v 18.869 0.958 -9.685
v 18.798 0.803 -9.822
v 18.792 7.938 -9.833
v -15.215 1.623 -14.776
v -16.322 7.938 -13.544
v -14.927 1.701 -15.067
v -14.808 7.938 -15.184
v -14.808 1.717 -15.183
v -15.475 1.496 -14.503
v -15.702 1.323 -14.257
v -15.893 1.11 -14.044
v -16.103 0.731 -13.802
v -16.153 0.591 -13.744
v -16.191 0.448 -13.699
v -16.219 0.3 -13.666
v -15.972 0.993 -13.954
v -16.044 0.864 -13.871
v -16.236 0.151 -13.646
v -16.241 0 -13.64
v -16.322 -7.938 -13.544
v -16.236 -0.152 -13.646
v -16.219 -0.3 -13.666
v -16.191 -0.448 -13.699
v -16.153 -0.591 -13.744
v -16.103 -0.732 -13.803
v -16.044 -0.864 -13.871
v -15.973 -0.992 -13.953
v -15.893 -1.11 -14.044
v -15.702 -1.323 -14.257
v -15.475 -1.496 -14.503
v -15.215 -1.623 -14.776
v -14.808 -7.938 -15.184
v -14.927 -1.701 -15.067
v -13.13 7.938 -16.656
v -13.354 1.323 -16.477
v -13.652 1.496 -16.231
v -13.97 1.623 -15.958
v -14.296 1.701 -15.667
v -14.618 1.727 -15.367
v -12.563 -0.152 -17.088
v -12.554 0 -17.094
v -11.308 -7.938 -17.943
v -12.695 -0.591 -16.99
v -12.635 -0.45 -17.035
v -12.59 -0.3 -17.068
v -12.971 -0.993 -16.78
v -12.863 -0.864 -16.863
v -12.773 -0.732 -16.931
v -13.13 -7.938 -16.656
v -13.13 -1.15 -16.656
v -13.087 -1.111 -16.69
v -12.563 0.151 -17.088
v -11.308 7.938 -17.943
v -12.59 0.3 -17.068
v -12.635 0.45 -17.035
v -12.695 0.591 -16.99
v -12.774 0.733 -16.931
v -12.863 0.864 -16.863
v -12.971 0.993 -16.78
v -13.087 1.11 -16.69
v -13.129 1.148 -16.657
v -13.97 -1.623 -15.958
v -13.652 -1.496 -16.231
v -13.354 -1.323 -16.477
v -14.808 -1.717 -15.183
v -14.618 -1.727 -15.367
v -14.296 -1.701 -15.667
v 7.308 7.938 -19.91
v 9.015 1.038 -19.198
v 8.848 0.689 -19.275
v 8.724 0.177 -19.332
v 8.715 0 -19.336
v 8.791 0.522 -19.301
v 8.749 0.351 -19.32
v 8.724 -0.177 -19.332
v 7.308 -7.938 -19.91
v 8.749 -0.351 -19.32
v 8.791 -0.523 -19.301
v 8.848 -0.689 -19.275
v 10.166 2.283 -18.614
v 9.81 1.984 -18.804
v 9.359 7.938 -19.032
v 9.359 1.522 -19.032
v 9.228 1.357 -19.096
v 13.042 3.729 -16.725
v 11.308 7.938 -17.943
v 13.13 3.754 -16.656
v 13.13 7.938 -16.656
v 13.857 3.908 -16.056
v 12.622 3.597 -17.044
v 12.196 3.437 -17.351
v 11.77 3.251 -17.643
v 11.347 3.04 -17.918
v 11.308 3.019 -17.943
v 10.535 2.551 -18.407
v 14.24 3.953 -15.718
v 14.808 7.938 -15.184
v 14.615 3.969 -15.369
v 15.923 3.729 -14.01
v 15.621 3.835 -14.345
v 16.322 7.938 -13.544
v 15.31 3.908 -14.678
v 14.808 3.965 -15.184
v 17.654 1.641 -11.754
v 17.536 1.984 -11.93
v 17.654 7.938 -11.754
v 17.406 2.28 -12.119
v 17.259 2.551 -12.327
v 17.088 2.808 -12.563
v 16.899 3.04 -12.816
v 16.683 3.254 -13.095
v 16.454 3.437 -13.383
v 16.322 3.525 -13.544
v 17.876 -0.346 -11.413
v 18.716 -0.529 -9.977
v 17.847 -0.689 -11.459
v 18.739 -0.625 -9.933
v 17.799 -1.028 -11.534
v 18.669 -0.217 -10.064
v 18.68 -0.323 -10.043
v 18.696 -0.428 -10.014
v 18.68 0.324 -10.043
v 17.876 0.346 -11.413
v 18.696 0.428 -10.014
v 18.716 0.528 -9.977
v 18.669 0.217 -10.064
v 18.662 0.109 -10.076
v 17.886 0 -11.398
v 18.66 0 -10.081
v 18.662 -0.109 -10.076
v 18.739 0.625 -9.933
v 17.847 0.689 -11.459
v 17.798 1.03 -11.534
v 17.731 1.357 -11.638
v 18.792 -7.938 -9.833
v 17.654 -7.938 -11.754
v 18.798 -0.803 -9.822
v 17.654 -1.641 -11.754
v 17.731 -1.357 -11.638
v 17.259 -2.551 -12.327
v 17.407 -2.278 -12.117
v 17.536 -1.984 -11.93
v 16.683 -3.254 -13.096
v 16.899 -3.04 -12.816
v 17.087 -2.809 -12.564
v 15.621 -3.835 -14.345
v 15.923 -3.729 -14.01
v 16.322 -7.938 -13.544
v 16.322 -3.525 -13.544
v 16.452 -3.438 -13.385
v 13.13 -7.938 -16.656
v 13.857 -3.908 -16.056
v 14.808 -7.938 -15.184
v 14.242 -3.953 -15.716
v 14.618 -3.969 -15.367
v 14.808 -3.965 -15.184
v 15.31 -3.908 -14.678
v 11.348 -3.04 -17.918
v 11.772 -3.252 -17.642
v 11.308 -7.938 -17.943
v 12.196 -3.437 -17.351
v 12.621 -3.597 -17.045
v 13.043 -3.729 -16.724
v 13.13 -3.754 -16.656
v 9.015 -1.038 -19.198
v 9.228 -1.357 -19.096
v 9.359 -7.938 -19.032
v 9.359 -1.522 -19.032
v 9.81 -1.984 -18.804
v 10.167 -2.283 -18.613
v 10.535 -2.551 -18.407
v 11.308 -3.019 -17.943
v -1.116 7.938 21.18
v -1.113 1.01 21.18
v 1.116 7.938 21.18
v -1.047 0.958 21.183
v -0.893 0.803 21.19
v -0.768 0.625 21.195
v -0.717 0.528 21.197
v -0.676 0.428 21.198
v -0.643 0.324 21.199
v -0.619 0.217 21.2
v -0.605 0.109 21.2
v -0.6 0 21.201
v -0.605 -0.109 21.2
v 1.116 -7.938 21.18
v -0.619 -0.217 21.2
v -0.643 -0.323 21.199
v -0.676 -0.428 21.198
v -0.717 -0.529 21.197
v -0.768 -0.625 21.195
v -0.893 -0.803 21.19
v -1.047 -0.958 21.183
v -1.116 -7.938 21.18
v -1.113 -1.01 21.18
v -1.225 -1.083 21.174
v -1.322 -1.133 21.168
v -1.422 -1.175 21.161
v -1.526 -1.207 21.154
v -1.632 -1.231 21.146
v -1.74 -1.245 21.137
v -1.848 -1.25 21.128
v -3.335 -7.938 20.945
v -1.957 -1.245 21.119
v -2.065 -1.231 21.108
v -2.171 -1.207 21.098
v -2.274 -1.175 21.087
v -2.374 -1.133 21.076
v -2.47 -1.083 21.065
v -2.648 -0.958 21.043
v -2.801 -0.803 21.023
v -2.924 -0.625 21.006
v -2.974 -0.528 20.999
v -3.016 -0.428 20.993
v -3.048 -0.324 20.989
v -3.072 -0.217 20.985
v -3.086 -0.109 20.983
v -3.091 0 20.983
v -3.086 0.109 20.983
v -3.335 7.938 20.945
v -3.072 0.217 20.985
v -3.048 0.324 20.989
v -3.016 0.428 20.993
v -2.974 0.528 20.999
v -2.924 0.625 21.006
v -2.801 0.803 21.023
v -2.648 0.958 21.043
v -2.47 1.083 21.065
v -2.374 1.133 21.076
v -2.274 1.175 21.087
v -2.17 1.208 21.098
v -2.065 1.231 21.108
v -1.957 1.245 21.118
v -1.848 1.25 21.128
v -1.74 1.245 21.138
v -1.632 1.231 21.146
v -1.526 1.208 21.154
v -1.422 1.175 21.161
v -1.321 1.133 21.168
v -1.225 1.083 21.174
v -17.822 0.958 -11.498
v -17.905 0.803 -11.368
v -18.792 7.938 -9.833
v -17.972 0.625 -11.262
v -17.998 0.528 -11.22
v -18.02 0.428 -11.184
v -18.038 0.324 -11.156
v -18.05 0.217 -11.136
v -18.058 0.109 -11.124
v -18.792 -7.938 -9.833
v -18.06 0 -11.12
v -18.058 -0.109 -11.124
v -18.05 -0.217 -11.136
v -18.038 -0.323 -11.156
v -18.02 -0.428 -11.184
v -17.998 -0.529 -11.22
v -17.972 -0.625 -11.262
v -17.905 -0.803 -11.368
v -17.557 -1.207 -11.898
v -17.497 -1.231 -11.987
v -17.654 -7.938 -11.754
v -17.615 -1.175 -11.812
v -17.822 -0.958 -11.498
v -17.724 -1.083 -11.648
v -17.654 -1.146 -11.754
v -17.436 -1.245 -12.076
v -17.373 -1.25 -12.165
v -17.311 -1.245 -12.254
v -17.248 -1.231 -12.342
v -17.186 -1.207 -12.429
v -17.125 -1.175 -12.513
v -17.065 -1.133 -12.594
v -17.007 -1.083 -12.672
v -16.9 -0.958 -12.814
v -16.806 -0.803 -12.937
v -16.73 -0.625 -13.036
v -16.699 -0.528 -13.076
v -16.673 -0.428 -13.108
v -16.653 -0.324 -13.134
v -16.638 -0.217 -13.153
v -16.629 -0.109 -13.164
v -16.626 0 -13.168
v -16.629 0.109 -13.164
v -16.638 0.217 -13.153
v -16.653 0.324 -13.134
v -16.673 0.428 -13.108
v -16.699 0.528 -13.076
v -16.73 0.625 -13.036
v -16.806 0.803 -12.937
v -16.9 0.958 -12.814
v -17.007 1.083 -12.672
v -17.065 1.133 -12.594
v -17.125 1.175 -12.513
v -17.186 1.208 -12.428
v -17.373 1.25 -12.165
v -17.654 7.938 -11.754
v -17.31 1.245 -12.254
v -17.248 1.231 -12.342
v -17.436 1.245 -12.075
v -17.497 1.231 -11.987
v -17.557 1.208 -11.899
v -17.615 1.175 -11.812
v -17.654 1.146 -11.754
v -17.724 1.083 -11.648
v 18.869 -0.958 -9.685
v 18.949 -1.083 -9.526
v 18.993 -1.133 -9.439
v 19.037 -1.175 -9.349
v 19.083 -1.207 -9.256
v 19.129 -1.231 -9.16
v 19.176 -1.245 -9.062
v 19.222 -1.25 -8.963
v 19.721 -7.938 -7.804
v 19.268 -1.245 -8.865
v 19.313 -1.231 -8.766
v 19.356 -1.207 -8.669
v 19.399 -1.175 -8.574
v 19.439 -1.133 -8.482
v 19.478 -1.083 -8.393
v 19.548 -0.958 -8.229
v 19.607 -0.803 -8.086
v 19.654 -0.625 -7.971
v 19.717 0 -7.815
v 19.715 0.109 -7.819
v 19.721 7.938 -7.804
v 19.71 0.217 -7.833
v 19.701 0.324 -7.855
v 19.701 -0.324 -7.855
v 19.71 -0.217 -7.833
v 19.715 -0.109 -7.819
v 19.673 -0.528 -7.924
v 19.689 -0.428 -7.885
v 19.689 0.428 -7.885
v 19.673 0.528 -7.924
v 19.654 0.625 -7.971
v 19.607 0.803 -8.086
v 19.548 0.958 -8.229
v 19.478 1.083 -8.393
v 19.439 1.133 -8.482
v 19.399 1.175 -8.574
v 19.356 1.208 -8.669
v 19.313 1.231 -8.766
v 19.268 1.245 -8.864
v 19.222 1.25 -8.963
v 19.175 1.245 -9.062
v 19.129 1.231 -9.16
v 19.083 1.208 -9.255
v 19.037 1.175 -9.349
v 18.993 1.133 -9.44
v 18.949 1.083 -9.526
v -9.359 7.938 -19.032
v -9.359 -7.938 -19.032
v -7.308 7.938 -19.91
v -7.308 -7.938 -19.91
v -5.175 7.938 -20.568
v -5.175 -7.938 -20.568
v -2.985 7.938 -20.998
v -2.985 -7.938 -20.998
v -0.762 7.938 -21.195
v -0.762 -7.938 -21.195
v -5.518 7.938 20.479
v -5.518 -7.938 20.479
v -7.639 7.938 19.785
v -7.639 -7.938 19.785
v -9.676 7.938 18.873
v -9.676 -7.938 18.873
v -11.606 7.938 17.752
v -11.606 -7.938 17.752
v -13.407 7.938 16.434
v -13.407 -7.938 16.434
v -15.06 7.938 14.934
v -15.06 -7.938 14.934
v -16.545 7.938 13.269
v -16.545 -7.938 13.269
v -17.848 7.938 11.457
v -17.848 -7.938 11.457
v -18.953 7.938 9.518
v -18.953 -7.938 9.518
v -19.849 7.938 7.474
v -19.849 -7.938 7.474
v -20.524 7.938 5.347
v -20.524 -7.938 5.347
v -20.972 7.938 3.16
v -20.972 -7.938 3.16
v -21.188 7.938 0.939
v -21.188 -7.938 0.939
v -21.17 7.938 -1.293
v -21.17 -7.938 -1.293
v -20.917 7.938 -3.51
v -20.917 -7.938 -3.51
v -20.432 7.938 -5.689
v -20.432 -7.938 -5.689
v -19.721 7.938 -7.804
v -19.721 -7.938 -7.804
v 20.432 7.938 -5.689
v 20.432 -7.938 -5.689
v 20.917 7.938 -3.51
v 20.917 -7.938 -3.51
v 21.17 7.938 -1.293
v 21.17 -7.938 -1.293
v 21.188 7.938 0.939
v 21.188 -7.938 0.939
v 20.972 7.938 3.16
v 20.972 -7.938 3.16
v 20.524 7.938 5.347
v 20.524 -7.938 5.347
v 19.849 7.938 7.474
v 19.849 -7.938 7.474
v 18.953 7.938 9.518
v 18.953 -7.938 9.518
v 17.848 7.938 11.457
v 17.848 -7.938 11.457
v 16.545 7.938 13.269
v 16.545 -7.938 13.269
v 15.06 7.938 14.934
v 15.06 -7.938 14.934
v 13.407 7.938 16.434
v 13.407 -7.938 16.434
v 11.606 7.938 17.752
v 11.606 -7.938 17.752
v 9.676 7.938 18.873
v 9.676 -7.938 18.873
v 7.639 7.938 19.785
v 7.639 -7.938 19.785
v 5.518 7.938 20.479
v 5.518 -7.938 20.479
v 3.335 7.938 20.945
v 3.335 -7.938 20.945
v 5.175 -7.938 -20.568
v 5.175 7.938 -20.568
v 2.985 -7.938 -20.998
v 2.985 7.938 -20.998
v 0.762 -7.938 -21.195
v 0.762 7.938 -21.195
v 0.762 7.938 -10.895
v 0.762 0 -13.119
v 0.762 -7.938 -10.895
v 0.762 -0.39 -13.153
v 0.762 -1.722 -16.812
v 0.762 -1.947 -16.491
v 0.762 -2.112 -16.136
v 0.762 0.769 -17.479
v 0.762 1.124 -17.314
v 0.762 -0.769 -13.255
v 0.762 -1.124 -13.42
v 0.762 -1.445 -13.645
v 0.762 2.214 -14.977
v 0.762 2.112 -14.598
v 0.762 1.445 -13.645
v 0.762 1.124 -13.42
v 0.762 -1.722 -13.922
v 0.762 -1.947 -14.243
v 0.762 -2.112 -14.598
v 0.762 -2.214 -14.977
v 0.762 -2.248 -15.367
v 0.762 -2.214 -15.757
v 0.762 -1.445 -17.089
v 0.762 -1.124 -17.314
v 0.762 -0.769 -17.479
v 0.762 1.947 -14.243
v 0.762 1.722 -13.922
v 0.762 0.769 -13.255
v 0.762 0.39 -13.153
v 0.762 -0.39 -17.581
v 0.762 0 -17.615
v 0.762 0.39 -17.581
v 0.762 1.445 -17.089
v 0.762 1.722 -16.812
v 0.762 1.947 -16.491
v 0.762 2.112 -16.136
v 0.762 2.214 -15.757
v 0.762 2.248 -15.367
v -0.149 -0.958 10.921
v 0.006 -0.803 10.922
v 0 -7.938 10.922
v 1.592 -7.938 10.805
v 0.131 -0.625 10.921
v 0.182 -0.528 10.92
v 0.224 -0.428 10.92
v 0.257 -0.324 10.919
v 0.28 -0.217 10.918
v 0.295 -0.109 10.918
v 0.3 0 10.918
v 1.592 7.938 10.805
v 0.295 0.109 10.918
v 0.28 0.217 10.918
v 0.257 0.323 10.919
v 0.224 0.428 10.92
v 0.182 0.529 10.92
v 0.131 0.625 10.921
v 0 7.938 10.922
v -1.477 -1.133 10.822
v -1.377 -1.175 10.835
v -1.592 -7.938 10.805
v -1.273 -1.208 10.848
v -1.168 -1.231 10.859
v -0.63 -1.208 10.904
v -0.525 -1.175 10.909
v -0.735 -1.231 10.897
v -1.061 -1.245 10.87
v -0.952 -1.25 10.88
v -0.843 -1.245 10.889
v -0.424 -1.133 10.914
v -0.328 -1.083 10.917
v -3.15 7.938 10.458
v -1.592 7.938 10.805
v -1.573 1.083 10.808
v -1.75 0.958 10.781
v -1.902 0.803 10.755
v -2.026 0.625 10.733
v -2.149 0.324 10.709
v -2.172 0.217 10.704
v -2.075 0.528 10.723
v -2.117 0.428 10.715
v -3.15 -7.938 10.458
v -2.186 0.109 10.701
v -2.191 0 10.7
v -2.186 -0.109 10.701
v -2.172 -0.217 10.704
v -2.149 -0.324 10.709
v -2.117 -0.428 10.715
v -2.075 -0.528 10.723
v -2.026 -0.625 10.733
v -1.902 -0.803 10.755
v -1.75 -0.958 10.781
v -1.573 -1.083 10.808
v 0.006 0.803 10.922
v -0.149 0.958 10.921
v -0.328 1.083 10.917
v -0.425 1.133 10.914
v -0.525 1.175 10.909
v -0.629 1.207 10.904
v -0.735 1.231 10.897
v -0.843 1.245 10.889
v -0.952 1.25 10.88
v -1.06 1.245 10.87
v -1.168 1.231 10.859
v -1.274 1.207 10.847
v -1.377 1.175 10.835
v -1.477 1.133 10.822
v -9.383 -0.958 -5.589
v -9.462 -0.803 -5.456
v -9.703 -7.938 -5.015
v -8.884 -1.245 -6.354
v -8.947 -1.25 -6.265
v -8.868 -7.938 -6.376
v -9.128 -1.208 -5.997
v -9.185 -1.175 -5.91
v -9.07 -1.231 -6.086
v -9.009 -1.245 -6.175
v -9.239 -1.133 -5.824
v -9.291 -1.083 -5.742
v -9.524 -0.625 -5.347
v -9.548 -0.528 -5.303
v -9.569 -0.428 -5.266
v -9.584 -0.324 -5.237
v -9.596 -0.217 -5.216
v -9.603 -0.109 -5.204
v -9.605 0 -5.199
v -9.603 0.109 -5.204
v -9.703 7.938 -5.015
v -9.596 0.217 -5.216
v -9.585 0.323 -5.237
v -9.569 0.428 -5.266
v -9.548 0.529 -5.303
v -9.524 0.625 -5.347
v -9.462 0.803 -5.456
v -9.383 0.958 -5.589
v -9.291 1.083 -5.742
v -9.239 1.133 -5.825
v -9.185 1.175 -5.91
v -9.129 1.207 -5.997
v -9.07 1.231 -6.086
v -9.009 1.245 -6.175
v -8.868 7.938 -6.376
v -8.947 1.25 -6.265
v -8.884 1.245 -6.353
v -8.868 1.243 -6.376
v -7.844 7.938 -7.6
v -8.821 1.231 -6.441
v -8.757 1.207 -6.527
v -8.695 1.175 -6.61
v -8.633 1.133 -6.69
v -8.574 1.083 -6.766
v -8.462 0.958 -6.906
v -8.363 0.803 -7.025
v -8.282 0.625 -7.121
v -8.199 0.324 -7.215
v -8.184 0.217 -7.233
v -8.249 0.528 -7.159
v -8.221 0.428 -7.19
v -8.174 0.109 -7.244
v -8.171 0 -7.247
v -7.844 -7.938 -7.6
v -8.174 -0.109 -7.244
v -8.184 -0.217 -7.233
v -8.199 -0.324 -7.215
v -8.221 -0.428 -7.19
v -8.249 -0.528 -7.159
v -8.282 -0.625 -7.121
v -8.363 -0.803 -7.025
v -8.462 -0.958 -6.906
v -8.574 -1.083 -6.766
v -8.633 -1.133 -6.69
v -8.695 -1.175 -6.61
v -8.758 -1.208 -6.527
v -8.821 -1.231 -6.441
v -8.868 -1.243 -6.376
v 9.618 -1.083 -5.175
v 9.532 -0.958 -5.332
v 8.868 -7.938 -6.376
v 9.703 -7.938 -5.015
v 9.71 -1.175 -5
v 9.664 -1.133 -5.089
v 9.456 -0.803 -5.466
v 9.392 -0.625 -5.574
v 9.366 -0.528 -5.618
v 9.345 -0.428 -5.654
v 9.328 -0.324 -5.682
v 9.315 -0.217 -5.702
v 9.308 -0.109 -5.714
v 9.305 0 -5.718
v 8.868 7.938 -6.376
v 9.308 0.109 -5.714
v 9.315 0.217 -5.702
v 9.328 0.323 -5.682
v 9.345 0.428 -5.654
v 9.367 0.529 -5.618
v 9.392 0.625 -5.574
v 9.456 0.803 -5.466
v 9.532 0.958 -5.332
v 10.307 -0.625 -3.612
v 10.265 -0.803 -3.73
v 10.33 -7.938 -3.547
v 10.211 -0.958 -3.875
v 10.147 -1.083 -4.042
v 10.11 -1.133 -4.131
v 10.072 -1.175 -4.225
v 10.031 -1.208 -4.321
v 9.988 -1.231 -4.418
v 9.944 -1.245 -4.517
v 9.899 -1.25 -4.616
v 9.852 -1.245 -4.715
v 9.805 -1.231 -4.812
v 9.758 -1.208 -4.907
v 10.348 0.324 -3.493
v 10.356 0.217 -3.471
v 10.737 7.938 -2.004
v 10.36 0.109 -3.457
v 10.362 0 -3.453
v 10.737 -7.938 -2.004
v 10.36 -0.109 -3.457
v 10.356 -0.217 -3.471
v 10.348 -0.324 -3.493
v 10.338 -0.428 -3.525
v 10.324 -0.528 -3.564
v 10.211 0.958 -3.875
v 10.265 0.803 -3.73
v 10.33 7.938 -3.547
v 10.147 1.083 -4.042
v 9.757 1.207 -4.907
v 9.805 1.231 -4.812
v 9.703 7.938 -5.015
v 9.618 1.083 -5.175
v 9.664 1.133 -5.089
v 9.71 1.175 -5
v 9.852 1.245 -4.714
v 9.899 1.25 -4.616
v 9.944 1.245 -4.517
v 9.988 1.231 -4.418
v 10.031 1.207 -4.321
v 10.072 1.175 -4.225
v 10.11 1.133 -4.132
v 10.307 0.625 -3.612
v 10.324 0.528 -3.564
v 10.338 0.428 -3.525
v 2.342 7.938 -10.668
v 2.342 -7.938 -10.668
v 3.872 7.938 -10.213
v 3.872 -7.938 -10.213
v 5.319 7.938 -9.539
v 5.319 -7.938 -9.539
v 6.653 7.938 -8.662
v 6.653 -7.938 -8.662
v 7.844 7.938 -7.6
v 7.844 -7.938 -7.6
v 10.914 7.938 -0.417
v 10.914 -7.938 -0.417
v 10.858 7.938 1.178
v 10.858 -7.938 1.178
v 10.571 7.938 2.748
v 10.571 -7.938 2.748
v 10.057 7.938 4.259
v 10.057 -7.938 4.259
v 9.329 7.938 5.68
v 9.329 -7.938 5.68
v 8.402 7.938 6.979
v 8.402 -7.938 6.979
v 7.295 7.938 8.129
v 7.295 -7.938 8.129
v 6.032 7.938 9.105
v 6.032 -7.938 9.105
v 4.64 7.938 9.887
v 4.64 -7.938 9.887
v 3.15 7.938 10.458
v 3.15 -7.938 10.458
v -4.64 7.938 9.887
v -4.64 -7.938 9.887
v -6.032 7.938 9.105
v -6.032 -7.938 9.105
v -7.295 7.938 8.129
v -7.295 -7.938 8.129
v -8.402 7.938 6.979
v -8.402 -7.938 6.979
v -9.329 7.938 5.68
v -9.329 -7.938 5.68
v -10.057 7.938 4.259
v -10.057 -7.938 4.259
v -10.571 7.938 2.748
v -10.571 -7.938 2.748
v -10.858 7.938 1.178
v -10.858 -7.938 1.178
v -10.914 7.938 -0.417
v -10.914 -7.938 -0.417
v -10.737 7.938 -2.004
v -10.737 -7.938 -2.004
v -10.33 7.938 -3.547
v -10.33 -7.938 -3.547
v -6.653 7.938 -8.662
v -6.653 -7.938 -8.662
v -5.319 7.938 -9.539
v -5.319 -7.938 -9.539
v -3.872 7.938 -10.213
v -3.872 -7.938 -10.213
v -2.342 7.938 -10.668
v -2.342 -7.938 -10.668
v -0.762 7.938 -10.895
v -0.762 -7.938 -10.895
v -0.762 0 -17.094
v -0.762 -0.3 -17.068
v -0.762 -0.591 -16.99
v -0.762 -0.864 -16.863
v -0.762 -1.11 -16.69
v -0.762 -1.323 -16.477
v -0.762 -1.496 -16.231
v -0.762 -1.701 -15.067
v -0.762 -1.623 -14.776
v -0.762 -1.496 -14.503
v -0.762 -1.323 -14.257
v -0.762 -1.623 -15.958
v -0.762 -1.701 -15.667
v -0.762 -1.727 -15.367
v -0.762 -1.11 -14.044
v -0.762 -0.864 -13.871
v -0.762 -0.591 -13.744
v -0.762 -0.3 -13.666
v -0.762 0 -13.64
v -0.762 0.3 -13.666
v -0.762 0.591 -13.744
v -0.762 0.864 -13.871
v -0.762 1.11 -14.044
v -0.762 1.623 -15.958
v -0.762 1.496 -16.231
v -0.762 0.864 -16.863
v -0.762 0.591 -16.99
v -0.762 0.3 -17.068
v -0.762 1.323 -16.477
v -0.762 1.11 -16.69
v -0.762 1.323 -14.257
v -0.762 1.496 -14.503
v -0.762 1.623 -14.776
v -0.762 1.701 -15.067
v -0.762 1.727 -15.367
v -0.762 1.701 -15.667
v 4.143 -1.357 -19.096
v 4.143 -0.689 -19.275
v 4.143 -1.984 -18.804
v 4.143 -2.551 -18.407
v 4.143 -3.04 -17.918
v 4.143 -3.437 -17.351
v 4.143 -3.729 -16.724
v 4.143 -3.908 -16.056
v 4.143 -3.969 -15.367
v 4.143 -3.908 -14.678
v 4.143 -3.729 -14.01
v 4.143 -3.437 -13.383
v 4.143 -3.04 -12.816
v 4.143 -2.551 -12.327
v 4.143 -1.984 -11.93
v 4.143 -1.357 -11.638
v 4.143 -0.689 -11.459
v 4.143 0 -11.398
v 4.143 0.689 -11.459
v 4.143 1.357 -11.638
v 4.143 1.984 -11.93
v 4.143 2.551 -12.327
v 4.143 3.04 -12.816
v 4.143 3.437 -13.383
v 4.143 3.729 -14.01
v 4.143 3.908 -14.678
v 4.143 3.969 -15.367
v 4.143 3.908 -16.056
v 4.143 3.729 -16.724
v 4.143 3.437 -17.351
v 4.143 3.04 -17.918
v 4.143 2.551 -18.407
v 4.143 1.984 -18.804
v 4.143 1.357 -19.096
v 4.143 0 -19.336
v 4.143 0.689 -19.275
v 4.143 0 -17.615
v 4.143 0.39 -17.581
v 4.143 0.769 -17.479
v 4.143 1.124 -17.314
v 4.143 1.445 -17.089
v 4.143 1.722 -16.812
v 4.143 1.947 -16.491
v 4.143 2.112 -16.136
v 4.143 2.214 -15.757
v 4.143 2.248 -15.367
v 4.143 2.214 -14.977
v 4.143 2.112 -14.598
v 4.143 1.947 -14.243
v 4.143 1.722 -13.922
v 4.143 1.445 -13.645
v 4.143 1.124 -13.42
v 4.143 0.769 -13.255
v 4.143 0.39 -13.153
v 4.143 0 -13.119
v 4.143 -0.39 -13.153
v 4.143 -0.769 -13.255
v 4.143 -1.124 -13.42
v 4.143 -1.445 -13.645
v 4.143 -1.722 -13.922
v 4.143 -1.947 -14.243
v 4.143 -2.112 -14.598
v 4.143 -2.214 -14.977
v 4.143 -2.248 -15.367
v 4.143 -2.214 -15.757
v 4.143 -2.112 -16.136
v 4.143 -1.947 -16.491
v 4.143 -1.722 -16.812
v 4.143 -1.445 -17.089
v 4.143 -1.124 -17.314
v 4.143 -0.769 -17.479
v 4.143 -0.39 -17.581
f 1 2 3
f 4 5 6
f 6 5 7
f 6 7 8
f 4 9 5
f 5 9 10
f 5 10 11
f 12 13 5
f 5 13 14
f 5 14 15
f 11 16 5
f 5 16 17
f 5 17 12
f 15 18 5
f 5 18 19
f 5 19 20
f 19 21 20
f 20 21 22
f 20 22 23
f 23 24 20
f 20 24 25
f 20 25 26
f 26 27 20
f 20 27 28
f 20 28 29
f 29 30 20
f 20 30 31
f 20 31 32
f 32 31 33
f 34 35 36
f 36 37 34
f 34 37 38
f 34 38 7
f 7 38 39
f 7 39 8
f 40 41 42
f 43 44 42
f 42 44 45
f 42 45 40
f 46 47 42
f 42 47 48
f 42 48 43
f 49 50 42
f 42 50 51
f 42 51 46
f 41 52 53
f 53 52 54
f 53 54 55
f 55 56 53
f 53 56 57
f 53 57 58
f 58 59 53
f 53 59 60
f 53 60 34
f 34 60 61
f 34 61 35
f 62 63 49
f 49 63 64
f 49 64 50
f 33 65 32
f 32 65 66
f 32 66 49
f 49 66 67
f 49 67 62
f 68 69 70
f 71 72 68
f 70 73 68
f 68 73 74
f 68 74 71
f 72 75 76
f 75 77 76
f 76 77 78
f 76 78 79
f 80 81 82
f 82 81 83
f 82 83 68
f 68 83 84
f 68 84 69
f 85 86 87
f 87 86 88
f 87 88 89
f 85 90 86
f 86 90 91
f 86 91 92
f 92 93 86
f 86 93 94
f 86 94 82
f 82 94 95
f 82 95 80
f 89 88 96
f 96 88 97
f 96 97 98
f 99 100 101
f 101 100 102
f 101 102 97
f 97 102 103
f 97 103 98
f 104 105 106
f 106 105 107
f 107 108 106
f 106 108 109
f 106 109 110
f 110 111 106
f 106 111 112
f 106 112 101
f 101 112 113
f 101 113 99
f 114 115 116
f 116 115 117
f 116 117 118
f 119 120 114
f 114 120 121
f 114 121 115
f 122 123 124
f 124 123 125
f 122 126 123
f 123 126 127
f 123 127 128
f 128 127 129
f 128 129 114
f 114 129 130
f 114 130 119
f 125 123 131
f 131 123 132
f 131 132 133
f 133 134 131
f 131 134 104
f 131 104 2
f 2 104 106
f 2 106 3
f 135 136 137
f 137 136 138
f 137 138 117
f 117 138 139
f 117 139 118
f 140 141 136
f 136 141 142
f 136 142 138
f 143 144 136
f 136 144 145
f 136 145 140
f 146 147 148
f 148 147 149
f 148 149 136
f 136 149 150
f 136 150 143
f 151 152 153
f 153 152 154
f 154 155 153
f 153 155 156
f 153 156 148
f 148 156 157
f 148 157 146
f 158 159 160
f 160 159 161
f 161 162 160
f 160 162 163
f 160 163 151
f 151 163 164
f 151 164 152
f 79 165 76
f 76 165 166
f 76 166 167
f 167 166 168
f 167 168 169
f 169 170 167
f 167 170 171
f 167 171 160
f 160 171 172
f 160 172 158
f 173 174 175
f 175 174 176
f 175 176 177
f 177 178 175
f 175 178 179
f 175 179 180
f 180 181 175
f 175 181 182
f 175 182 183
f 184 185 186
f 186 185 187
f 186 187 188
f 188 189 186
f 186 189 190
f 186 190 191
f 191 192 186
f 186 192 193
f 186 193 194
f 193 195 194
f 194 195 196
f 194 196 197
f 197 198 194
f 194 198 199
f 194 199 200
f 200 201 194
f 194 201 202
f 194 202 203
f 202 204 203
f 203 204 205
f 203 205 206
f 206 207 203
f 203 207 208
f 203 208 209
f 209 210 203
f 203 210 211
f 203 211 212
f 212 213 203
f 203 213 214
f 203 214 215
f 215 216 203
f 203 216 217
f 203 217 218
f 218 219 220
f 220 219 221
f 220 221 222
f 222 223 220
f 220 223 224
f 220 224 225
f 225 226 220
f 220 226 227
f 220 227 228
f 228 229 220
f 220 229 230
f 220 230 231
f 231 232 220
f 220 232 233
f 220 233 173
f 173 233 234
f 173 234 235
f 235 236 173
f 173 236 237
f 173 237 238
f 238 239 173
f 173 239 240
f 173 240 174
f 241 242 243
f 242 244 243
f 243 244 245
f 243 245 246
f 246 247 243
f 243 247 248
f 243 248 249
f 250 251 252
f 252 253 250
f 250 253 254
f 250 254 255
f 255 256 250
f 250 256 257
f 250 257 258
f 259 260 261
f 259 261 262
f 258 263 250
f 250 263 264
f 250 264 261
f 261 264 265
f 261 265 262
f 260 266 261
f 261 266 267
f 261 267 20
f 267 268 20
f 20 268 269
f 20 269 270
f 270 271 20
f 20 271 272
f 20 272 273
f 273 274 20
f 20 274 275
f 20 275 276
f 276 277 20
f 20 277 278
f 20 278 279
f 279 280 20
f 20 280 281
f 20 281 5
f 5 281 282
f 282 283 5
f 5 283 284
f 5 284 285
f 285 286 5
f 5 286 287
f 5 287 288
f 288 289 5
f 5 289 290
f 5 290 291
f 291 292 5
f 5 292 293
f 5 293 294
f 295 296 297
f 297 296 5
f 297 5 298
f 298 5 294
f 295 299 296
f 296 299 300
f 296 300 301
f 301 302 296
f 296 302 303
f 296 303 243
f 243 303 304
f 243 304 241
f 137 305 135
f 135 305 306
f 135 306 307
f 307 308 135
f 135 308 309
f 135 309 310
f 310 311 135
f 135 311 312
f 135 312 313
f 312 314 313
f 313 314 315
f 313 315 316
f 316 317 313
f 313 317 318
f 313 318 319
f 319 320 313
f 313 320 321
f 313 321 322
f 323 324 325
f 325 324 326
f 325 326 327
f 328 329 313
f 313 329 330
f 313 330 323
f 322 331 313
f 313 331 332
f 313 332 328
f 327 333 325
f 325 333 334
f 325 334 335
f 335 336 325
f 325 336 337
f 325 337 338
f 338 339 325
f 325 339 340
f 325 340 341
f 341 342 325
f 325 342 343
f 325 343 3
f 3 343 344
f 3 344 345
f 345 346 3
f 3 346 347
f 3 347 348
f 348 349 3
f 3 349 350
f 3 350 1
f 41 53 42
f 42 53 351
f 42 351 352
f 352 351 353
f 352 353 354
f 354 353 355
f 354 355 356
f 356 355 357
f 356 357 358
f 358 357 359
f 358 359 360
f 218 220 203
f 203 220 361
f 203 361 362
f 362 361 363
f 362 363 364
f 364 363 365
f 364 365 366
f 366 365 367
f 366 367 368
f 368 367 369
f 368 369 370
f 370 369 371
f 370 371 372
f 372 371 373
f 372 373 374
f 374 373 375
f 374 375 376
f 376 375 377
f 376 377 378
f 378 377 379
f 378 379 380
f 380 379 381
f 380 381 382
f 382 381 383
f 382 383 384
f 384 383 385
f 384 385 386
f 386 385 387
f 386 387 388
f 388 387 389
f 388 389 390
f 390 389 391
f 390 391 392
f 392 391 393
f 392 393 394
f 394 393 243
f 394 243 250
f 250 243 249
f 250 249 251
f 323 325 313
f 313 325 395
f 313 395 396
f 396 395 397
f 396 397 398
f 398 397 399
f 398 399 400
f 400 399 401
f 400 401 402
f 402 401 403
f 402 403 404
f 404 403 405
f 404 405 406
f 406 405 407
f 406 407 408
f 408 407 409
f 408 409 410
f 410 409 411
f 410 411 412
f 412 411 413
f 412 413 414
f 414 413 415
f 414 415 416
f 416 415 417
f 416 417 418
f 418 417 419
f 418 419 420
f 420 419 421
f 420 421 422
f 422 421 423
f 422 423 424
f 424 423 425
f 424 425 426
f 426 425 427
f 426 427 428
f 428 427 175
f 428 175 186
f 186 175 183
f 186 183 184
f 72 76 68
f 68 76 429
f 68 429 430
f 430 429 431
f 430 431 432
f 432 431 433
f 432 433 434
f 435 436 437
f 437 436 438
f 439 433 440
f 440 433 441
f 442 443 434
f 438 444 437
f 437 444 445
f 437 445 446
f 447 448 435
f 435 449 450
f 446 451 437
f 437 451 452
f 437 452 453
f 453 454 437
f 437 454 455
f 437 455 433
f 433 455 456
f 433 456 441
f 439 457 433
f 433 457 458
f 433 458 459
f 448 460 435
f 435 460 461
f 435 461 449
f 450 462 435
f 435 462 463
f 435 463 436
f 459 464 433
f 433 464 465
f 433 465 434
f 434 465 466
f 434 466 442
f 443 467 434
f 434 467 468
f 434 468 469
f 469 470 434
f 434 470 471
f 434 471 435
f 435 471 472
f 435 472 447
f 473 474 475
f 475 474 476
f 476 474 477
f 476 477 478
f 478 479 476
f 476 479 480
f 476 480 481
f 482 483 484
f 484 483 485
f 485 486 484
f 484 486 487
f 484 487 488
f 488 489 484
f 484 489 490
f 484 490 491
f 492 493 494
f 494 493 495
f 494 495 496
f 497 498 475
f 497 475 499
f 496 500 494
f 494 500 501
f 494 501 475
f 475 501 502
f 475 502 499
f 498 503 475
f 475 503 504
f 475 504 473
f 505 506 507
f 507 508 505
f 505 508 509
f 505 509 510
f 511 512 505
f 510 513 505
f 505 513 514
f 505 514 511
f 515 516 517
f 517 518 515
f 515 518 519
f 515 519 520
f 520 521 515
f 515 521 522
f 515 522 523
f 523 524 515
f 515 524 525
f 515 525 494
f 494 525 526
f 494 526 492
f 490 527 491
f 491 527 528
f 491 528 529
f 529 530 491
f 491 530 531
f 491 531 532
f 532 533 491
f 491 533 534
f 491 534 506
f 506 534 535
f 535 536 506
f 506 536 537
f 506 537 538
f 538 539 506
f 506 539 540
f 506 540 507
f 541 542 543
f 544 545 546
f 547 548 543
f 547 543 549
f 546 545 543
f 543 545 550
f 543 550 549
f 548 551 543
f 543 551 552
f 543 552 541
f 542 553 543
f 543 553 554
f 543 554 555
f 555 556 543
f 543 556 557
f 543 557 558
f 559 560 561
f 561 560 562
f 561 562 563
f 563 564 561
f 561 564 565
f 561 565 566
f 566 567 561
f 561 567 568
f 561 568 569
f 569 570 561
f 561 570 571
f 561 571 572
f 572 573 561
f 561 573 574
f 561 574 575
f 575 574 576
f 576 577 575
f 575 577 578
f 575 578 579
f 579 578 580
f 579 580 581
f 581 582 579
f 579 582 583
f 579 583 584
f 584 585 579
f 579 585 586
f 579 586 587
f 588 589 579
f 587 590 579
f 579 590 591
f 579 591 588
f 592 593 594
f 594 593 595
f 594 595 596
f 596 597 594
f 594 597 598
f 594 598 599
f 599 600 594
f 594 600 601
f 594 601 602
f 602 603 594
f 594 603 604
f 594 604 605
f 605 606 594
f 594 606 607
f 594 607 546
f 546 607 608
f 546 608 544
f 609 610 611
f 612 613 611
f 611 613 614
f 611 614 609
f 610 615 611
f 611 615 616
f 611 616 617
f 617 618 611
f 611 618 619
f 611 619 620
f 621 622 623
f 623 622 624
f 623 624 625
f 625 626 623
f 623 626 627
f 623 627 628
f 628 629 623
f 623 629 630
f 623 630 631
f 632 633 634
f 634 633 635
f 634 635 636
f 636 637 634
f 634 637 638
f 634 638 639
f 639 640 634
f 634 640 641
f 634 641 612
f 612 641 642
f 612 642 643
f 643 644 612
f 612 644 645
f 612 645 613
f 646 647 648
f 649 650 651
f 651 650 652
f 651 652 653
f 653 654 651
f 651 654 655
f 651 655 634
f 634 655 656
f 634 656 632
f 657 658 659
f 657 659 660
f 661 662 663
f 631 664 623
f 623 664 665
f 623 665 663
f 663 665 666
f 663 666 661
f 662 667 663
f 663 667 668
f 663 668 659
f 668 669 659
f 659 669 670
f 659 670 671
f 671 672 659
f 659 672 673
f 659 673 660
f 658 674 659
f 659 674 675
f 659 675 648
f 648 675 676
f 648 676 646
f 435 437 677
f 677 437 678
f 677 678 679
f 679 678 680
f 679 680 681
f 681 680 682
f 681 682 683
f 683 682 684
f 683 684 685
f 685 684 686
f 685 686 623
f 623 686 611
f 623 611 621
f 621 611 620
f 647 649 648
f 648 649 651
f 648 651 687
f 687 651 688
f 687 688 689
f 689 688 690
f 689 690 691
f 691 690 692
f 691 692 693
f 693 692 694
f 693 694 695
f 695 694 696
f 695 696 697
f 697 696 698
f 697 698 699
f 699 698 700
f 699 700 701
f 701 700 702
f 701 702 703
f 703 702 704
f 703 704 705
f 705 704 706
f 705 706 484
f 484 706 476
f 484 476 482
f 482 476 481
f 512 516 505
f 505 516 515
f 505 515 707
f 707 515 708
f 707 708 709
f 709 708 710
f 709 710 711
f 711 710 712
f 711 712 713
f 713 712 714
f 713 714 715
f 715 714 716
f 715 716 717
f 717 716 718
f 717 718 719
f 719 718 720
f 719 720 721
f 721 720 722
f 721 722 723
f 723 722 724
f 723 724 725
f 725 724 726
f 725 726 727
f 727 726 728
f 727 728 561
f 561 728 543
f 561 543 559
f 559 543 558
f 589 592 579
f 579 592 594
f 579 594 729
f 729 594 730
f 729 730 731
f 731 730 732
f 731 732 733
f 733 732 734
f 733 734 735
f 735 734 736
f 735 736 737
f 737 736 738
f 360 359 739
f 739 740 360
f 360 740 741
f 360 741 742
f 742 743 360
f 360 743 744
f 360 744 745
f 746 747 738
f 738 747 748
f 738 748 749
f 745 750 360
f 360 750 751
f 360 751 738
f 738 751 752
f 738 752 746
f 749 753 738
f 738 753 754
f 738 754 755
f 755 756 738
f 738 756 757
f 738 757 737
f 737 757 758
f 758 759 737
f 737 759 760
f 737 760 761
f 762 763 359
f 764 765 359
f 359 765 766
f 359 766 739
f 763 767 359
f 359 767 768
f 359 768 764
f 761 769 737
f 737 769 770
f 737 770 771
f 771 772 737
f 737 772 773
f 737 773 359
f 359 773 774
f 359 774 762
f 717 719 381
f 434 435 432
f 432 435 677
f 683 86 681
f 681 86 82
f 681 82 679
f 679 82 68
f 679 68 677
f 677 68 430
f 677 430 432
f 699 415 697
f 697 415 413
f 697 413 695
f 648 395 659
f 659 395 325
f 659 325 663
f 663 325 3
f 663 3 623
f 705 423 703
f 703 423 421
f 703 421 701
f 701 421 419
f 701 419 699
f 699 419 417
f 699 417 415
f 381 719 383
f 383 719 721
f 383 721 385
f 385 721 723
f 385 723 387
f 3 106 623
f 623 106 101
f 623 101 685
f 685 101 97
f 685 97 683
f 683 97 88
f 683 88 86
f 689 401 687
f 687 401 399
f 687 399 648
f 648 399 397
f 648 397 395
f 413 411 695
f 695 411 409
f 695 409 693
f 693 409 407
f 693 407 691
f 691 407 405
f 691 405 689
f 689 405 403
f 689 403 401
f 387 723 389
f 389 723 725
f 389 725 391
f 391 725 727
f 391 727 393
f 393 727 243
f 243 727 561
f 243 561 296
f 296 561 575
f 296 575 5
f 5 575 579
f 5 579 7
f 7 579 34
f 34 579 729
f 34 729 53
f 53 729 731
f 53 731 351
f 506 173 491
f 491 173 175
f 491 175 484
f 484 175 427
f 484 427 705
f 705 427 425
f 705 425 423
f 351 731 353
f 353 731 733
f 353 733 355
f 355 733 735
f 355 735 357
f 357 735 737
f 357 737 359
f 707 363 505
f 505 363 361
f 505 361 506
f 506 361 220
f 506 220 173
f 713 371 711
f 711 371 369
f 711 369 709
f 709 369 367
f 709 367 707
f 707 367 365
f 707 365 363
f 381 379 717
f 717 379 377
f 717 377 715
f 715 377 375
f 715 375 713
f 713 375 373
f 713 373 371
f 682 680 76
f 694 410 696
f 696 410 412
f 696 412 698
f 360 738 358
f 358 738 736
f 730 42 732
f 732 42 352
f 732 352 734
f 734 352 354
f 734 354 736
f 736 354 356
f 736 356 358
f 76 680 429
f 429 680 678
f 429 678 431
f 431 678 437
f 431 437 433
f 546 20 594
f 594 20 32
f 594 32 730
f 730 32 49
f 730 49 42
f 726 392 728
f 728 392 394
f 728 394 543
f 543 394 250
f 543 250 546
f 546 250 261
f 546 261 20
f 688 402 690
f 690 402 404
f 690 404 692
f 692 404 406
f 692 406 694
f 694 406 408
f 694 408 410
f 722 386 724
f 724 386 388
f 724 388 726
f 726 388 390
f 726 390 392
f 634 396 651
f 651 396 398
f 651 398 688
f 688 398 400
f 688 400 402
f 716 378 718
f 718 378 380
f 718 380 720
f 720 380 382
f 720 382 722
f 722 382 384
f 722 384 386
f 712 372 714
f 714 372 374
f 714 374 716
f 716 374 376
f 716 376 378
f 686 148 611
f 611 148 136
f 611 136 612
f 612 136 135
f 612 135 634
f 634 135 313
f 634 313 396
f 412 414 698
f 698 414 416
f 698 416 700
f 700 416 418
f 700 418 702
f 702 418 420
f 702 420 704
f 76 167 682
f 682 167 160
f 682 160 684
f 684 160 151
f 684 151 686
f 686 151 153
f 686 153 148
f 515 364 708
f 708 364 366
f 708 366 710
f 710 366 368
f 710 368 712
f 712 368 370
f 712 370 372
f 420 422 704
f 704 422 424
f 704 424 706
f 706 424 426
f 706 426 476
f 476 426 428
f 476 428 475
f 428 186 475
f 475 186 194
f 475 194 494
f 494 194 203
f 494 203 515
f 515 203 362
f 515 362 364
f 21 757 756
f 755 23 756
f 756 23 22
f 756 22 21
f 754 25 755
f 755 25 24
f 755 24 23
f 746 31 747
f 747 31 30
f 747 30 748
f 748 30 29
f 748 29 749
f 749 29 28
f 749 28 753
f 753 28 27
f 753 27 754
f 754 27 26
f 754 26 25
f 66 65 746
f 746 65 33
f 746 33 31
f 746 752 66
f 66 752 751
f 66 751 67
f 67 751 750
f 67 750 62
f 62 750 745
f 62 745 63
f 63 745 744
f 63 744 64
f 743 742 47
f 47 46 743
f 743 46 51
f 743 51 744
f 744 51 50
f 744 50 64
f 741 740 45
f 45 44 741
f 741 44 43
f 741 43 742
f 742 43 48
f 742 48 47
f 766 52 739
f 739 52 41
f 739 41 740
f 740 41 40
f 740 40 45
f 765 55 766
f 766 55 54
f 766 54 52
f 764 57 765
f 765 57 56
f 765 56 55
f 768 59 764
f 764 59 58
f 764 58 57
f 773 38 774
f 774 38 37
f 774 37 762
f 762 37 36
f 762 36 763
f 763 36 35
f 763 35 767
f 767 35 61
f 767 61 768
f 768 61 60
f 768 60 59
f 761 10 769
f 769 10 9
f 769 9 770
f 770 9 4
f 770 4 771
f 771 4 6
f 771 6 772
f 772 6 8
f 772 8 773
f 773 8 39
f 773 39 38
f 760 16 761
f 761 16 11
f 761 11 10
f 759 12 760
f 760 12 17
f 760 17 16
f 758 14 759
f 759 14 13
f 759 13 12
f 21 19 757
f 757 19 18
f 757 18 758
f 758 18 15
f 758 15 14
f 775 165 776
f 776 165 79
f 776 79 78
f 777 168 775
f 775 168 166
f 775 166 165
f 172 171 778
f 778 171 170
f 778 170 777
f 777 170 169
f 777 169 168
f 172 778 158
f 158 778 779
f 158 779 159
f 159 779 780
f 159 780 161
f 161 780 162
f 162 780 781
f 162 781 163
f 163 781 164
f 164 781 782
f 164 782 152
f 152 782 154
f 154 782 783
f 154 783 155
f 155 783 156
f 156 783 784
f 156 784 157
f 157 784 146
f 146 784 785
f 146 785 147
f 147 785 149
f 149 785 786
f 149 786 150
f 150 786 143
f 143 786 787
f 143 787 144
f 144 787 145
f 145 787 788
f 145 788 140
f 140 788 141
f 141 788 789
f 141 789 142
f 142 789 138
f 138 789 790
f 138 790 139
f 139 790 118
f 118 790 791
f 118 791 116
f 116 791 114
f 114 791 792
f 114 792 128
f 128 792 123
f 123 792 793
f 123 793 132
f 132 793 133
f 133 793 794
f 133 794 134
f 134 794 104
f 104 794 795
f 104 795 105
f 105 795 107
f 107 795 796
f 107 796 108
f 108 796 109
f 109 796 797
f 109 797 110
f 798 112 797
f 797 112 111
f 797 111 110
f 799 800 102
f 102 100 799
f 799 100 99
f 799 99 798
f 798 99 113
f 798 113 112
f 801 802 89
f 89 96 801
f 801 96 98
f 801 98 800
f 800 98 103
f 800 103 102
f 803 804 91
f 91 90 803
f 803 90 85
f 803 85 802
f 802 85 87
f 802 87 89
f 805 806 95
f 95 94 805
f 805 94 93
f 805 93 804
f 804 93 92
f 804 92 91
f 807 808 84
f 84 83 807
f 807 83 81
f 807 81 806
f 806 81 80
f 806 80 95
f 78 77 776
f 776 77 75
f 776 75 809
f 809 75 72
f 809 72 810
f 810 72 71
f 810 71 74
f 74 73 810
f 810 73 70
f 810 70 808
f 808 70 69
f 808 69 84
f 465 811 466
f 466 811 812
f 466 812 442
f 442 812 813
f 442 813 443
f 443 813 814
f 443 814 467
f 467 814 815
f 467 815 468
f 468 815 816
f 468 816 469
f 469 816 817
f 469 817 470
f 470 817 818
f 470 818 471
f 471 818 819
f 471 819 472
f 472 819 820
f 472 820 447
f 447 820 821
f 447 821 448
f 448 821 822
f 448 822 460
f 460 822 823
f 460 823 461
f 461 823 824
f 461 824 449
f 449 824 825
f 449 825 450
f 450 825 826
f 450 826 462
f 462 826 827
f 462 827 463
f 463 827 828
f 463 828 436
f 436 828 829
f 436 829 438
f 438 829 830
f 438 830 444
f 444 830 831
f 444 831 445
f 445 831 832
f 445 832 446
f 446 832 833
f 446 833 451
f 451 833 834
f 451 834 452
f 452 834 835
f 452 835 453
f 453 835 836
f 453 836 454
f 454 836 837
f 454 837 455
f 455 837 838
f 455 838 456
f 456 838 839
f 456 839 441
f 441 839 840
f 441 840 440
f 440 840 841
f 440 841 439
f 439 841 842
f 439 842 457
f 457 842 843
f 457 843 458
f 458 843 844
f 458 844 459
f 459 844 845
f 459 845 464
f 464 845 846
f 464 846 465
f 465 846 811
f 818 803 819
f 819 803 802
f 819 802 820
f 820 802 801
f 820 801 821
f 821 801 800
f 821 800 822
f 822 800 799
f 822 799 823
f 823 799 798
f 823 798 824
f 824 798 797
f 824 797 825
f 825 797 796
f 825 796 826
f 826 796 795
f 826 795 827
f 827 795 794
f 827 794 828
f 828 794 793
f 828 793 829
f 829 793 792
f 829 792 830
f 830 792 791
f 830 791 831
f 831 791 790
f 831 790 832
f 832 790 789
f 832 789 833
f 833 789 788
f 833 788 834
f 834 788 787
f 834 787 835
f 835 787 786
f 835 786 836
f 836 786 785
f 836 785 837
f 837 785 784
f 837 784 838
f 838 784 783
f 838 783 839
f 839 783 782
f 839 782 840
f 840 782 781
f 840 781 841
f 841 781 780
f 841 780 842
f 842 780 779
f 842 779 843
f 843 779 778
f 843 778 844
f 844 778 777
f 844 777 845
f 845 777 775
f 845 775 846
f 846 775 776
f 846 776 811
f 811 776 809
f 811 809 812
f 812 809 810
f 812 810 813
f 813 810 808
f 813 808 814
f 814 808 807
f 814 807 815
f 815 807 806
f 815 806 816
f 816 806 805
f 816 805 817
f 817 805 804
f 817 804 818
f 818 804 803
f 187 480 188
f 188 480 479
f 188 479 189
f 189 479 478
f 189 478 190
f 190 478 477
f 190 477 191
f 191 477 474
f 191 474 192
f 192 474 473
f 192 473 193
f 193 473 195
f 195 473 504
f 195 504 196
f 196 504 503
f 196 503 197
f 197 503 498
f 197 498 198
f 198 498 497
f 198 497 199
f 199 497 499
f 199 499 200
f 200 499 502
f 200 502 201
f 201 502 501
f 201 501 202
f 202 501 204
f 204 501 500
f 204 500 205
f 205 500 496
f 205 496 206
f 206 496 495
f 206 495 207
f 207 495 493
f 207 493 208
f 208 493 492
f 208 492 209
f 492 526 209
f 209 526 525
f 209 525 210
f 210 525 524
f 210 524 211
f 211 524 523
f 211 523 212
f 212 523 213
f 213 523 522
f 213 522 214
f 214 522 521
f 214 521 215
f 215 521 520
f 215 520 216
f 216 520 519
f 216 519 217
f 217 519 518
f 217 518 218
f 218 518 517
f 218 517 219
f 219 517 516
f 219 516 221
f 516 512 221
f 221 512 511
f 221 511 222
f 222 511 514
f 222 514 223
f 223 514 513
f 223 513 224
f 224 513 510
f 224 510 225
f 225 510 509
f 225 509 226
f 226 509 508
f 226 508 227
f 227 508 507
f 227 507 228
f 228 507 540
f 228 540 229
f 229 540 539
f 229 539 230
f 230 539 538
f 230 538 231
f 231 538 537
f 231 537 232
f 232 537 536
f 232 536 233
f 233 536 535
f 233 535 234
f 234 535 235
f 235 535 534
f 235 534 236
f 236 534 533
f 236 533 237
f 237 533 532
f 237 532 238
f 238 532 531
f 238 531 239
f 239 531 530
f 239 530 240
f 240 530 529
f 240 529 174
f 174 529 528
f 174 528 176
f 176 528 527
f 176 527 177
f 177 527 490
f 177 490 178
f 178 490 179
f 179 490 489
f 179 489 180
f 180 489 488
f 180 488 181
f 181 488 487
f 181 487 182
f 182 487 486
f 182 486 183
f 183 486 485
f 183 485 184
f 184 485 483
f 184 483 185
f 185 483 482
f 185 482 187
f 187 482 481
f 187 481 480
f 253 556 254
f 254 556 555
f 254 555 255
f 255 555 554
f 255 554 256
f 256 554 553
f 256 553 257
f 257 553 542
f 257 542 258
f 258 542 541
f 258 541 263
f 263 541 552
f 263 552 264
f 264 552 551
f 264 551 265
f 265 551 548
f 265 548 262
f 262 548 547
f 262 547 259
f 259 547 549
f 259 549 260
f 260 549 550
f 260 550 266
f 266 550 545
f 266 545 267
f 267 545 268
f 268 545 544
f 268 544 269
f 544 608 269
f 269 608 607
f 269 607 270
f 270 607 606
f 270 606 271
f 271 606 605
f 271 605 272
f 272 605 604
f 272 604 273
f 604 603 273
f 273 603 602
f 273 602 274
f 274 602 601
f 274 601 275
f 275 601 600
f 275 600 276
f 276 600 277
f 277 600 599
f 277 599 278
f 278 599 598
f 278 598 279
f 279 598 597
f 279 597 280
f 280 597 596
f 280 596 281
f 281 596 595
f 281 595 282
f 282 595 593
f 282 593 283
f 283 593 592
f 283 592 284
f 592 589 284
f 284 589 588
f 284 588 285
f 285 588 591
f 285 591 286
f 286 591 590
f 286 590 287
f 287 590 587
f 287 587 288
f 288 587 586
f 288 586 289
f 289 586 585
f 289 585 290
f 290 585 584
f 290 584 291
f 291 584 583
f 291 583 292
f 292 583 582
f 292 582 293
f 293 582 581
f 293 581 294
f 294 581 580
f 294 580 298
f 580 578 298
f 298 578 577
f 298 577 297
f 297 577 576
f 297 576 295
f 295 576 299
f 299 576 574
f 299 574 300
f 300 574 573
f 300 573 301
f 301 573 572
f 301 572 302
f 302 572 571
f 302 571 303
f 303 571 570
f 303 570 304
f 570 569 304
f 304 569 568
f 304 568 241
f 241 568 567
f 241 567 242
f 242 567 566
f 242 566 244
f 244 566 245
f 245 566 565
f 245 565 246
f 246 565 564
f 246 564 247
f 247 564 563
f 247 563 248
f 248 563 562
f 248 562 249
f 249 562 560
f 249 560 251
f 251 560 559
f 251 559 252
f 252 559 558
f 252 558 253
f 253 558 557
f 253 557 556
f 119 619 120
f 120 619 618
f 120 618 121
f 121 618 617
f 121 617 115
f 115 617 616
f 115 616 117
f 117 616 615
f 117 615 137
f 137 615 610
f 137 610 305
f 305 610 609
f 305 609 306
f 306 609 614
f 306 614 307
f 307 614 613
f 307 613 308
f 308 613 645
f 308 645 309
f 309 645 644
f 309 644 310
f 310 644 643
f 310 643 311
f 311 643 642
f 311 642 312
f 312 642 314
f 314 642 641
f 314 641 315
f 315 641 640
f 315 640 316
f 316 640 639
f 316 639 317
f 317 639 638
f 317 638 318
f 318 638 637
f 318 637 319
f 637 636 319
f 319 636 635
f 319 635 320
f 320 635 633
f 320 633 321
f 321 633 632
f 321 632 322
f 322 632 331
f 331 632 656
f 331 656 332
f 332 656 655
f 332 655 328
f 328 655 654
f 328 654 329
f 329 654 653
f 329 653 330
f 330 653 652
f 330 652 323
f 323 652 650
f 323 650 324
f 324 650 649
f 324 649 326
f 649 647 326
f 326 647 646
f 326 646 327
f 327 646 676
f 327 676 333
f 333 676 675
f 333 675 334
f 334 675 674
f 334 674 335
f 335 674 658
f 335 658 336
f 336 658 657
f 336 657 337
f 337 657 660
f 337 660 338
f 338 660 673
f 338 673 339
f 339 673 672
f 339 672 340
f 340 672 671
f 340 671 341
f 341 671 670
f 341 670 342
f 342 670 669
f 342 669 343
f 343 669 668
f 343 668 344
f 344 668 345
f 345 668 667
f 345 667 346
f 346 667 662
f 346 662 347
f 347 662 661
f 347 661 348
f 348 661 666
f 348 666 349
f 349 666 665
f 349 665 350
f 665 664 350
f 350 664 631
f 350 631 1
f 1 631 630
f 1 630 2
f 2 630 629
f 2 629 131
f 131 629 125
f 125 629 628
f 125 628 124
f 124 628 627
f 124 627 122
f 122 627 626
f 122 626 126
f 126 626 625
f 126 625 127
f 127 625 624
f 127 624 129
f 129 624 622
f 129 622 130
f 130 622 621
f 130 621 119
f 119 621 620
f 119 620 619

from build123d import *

# Parameters (mm, degrees)
BOSS_EXTRUDE1_DEPTH        = 7.9375
M3X0_5_TAPPED_HOLE1_REACH  = 50.846
M3X0_5_TAPPED_HOLE1_BORE_R = 1.25
CIRPATTERN1_COUNT          = 3


with BuildPart() as part:
    # Sketch1 → Boss-Extrude1 (new, symmetric)
    with BuildSketch(Plane(origin=(0, 0, 0), x_dir=(1, 0, 0), z_dir=(0, 1, 0))):
        with BuildLine():
            Line((-0.762, 21.195306957), (-0.762, 10.895386179))
            ThreePointArc((-0.762, 10.895386179), (0, -10.922), (0.762, 10.895386179))
            Line((0.762, 10.895386179), (0.762, 21.195306957))
            ThreePointArc((0.762, 21.195306957), (0, -21.209), (-0.762, 21.195306957))
        make_face()
    extrude(amount=BOSS_EXTRUDE1_DEPTH, both=True)

    # Sketch2 → Cut-Revolve1 (revolve, cut)
    with BuildSketch(Plane(origin=(0, 0, 0), x_dir=(1, 0, 0), z_dir=(0, 1, 0)), mode=Mode.PRIVATE) as cut_revolve1_sk:
        Polygon((-16.24122954, 13.6398), (0.762, 13.6398), (0.762, 13.1191), (4.142955705, 13.1191), (4.142955705, 11.39825), (17.885792628, 11.39825), (17.885792628, 15.367), (-16.24122954, 15.367), align=None)
    revolve(cut_revolve1_sk.sketch.rotate(Axis((-16.24122954, 0, -15.367), (-1, 0, 0)), 180), axis=Axis((-16.24122954, 0, -15.367), (-1, 0, 0)), mode=Mode.SUBTRACT)

    # M3x0.5 Tapped Hole1 bore (on position points) → M3x0.5 Tapped Hole1 (cut, up to next)
    with BuildSketch(Plane(origin=(-1.848486148, 0, 21.128293352), x_dir=(0.996194698092, 0, 0.087155742748), z_dir=(-0.087155742748, 0, 0.996194698092)), mode=Mode.PRIVATE) as m3x0_5_tapped_hole1_sk1:
        Circle(M3X0_5_TAPPED_HOLE1_BORE_R)
    m3x0_5_tapped_hole1_tool1 = extrude(m3x0_5_tapped_hole1_sk1.sketch, amount=-M3X0_5_TAPPED_HOLE1_REACH, mode=Mode.PRIVATE) & part.part
    m3x0_5_tapped_hole1 = m3x0_5_tapped_hole1_tool1.solids().sort_by_distance((-1.848486, 0, 21.128293))[0]
    add(m3x0_5_tapped_hole1, mode=Mode.SUBTRACT)

    # CirPattern1: M3x0.5 Tapped Hole1 ×3 about axis
    cirpattern1_axis = Axis((0, 7.9375, 0), (0, -1, 0))
    for i in range(1, CIRPATTERN1_COUNT):
        add(m3x0_5_tapped_hole1.rotate(cirpattern1_axis, i * 360 / CIRPATTERN1_COUNT), mode=Mode.SUBTRACT)


solid = part.part
